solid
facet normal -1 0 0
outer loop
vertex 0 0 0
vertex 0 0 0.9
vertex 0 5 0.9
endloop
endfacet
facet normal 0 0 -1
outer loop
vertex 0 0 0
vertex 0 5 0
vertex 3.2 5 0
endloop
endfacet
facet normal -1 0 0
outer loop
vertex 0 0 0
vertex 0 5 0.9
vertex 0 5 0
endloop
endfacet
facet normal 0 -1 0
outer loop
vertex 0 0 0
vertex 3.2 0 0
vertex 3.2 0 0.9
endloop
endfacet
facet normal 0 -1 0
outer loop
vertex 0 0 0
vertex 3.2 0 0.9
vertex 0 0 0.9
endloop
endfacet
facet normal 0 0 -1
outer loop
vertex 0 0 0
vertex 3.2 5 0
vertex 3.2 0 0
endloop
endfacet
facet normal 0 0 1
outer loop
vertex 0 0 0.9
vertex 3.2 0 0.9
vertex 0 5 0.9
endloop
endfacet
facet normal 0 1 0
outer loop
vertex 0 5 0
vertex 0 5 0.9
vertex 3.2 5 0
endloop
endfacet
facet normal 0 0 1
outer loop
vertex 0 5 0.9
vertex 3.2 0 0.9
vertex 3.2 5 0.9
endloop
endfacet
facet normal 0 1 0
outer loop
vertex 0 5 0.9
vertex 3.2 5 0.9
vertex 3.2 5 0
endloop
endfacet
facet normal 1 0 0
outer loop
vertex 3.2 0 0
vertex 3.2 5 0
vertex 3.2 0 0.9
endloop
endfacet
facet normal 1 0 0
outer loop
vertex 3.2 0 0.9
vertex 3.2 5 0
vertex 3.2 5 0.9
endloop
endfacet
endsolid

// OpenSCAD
/* Warning, this is a very basic generator with a lot of approximation 
input data : [VDFN, H6A, 3.2x5.0x0.9mm, 4, , C, C04-01008C]
generated by com.zoubworld.electronics.cad.model3d.Basic
Date : Sun Feb 15 10:50:49 CET 2026
*/

//body
color("black")
translate([0,0,0])
cube([3.2,5.0,0.9], center=false);
